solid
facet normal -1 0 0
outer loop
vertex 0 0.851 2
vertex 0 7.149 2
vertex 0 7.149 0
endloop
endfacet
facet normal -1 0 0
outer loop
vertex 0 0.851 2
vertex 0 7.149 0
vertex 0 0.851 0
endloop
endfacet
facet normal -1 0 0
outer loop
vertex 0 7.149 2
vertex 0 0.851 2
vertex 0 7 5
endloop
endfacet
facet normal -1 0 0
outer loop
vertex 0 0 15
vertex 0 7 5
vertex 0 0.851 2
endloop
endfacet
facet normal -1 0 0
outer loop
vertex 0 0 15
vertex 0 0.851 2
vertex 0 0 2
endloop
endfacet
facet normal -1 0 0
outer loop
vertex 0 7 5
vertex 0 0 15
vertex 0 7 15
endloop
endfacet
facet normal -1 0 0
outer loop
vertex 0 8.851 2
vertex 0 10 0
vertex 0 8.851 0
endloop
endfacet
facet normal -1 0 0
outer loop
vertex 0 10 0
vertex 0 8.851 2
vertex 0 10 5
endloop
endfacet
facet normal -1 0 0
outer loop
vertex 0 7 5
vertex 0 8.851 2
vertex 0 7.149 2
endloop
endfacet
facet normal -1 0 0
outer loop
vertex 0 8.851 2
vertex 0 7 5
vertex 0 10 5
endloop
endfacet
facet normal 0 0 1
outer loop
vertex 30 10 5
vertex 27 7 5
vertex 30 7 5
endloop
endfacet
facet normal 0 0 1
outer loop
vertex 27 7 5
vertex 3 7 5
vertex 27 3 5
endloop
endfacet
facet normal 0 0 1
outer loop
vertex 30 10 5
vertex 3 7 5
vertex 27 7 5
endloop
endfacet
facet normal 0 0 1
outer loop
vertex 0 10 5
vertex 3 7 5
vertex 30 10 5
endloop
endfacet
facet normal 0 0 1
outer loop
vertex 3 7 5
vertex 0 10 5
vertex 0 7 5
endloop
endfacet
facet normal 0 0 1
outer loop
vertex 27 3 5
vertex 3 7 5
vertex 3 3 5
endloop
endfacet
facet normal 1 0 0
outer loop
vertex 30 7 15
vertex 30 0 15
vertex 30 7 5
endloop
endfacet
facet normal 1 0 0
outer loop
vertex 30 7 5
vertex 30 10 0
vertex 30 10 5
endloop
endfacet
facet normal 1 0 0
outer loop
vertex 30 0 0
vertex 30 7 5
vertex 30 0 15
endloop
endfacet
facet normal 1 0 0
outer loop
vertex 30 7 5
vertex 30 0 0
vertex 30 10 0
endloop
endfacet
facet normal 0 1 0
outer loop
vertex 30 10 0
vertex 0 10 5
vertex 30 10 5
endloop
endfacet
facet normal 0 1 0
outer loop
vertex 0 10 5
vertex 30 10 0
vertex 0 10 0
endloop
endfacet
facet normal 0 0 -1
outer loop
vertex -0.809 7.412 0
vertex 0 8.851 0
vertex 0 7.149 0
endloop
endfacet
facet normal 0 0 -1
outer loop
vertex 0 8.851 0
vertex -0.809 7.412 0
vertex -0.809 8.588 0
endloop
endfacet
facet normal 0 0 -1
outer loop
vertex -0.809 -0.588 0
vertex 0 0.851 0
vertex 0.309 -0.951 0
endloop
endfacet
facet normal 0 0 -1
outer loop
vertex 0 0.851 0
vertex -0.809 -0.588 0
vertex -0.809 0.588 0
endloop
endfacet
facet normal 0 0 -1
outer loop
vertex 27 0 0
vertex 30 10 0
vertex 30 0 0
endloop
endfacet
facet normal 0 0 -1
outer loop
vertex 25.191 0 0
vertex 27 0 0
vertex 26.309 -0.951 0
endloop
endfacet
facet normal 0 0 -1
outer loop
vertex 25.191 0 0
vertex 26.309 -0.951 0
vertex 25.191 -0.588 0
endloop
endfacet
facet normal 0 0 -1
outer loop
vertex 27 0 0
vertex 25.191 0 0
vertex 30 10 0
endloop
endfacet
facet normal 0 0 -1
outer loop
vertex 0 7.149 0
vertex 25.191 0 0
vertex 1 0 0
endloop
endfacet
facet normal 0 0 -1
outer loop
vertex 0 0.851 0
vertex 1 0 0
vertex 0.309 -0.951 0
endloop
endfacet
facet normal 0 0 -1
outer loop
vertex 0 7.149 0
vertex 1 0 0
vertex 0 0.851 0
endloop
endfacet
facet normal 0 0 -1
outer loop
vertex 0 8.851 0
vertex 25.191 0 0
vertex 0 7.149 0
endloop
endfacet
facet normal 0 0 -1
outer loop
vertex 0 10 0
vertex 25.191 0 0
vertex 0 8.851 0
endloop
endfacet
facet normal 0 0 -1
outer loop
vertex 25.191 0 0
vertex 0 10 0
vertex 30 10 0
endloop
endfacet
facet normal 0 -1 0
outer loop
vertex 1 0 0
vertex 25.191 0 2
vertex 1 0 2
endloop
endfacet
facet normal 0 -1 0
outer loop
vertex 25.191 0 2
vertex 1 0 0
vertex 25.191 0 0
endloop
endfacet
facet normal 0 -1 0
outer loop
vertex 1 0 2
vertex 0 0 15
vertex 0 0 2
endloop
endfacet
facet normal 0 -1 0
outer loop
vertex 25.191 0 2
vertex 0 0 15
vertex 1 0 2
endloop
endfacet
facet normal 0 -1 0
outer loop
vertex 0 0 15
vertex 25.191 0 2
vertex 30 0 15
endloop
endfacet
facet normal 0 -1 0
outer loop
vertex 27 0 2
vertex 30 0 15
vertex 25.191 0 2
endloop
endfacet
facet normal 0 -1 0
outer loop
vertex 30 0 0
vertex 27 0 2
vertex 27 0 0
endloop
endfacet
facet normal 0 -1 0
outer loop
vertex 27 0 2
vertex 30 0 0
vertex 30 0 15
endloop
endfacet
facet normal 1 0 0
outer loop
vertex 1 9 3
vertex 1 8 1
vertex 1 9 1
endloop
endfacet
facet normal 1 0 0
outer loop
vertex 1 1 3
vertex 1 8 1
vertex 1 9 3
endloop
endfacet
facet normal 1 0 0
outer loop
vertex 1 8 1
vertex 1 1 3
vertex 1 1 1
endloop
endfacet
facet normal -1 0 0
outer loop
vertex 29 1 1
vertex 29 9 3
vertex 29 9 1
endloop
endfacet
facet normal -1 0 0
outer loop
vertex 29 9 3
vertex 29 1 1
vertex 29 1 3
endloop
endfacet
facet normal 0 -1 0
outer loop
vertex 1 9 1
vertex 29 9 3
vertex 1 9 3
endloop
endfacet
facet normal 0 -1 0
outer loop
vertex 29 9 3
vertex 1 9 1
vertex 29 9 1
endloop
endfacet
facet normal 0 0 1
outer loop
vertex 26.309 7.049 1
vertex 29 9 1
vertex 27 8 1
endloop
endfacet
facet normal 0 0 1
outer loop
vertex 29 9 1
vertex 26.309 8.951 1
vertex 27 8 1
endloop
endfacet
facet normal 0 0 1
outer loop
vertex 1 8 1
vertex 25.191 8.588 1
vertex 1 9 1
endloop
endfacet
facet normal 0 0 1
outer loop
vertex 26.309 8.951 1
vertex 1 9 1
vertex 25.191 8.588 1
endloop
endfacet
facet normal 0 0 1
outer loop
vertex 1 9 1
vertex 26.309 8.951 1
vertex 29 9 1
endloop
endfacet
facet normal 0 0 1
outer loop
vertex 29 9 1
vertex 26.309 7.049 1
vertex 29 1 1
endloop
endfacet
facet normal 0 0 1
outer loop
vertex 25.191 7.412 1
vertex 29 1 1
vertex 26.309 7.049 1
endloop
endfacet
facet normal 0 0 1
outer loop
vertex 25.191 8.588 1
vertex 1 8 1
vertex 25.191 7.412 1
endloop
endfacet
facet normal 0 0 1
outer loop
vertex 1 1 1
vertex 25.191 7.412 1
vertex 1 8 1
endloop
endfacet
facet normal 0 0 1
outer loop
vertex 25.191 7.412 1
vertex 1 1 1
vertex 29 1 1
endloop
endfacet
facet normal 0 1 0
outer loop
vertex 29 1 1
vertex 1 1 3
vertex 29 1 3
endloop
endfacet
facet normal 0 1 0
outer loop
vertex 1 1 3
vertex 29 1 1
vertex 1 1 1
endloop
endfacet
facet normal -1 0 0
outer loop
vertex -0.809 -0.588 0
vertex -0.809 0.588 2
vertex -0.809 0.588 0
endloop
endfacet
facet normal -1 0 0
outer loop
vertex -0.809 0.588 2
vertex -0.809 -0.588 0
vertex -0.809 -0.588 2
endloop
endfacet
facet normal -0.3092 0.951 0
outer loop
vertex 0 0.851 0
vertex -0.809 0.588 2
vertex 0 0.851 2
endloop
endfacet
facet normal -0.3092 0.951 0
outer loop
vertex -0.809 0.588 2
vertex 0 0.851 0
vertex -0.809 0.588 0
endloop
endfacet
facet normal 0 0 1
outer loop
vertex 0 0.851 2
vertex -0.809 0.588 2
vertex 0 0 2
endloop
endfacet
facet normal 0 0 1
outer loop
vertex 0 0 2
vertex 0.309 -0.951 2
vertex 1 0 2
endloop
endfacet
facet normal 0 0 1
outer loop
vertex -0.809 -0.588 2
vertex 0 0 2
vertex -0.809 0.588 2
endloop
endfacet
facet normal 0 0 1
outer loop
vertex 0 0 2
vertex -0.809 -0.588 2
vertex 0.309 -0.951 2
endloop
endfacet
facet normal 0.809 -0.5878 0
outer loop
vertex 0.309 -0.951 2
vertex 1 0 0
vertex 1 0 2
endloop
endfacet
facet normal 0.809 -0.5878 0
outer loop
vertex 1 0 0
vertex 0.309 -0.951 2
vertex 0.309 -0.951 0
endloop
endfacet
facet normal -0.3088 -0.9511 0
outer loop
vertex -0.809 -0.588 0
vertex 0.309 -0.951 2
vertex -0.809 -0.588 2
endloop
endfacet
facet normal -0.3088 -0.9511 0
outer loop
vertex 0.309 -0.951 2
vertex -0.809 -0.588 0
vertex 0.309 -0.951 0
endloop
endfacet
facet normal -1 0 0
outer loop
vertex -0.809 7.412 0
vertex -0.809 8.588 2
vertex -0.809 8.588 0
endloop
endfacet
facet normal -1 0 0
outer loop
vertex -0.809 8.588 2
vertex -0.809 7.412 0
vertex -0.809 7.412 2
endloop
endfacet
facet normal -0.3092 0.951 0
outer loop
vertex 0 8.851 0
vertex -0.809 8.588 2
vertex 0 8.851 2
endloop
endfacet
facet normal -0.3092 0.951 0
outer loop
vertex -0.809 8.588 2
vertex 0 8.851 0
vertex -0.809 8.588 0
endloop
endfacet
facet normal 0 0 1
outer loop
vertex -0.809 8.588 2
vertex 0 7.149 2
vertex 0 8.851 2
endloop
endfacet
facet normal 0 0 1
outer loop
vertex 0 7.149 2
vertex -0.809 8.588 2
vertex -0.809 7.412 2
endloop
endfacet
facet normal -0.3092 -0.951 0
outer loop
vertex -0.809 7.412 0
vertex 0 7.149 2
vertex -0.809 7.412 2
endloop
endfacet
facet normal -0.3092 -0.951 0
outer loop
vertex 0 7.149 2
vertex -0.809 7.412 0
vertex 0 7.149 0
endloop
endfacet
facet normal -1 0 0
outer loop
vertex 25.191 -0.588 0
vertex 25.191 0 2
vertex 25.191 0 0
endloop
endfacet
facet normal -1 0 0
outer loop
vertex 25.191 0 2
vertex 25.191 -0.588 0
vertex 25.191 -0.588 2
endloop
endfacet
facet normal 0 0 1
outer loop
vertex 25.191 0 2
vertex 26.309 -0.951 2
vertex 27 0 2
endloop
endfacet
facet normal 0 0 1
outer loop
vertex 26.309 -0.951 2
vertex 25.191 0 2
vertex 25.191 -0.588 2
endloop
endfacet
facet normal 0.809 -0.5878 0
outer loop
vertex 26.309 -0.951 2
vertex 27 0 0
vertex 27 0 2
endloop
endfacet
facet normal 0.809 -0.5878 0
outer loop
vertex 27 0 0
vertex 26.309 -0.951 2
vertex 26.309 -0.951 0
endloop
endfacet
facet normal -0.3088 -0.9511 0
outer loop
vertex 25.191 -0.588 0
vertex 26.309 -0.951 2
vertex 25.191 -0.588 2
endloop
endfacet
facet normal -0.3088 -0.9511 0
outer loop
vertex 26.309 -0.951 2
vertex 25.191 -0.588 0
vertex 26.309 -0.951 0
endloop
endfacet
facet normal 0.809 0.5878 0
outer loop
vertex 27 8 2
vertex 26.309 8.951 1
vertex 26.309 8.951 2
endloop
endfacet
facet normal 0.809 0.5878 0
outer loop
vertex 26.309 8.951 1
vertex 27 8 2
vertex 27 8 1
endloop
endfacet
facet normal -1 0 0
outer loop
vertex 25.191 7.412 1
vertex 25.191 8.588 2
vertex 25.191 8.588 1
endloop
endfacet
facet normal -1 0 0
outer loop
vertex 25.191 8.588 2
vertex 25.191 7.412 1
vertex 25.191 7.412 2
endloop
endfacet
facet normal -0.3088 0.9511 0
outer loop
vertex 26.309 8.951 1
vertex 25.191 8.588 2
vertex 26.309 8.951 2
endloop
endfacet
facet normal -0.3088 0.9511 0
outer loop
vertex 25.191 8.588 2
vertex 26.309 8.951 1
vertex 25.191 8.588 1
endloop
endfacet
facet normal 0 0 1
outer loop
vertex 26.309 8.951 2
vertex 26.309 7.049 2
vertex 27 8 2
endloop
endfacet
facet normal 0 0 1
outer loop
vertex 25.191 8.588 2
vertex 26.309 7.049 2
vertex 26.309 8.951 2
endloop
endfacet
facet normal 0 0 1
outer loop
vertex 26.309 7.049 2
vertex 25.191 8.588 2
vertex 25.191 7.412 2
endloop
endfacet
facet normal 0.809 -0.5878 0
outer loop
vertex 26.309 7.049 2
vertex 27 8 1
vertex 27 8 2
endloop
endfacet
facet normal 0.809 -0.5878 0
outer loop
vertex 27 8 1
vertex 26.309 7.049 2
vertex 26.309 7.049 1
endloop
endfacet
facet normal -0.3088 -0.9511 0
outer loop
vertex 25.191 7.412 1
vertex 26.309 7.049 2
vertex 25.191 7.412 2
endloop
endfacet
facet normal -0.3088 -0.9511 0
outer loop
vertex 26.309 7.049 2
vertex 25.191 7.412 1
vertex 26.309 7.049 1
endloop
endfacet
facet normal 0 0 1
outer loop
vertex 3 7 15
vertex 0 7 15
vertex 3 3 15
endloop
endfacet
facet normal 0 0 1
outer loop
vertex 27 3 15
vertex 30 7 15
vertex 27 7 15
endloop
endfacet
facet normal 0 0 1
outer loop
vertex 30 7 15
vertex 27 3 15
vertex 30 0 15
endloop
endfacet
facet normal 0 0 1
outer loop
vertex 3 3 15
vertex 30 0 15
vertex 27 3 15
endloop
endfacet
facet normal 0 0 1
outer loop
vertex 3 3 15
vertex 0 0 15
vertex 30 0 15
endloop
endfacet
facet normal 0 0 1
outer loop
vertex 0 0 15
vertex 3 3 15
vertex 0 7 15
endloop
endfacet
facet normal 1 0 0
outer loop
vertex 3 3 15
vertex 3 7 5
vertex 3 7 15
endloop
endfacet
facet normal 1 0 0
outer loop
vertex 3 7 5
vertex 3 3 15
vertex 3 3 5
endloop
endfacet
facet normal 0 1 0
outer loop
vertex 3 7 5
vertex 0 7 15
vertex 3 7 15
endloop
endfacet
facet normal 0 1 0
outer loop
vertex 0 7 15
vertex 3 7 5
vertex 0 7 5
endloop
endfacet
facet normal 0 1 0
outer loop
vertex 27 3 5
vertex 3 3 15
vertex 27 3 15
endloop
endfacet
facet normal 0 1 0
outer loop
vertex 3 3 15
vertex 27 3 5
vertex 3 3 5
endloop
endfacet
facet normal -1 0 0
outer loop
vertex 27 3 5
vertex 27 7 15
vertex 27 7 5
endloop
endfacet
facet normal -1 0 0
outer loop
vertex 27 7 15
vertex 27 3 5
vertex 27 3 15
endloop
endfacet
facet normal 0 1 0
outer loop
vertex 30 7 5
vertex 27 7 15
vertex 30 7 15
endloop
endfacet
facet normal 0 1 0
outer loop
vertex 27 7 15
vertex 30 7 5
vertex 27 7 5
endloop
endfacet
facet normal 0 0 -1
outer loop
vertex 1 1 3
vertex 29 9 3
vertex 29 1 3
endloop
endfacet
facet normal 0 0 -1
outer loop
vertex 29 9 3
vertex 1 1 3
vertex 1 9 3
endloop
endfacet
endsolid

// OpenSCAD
// Frame of the couch
difference() {
    cube([30, 10, 5]);

    // Carving space for cushions
    translate([1, 1, 1])
    cube([28, 8, 3]);
}

// Couch legs
for (x = [0, 26]) {
    for (y = [0, 8]) {
        translate([x, y, 0])
        cylinder(h = 2, r = 1, center = false);
    }
}

// Couch back
translate([0, 0, 5])
cube([30, 3, 10]);

// Couch armrests
for (x = [0, 27]) {
    translate([x, 3, 5])
    cube([3, 4, 10]);
}

// Couch cushions
translate([1, 1, 3])
cube([28, 8, 2]);
